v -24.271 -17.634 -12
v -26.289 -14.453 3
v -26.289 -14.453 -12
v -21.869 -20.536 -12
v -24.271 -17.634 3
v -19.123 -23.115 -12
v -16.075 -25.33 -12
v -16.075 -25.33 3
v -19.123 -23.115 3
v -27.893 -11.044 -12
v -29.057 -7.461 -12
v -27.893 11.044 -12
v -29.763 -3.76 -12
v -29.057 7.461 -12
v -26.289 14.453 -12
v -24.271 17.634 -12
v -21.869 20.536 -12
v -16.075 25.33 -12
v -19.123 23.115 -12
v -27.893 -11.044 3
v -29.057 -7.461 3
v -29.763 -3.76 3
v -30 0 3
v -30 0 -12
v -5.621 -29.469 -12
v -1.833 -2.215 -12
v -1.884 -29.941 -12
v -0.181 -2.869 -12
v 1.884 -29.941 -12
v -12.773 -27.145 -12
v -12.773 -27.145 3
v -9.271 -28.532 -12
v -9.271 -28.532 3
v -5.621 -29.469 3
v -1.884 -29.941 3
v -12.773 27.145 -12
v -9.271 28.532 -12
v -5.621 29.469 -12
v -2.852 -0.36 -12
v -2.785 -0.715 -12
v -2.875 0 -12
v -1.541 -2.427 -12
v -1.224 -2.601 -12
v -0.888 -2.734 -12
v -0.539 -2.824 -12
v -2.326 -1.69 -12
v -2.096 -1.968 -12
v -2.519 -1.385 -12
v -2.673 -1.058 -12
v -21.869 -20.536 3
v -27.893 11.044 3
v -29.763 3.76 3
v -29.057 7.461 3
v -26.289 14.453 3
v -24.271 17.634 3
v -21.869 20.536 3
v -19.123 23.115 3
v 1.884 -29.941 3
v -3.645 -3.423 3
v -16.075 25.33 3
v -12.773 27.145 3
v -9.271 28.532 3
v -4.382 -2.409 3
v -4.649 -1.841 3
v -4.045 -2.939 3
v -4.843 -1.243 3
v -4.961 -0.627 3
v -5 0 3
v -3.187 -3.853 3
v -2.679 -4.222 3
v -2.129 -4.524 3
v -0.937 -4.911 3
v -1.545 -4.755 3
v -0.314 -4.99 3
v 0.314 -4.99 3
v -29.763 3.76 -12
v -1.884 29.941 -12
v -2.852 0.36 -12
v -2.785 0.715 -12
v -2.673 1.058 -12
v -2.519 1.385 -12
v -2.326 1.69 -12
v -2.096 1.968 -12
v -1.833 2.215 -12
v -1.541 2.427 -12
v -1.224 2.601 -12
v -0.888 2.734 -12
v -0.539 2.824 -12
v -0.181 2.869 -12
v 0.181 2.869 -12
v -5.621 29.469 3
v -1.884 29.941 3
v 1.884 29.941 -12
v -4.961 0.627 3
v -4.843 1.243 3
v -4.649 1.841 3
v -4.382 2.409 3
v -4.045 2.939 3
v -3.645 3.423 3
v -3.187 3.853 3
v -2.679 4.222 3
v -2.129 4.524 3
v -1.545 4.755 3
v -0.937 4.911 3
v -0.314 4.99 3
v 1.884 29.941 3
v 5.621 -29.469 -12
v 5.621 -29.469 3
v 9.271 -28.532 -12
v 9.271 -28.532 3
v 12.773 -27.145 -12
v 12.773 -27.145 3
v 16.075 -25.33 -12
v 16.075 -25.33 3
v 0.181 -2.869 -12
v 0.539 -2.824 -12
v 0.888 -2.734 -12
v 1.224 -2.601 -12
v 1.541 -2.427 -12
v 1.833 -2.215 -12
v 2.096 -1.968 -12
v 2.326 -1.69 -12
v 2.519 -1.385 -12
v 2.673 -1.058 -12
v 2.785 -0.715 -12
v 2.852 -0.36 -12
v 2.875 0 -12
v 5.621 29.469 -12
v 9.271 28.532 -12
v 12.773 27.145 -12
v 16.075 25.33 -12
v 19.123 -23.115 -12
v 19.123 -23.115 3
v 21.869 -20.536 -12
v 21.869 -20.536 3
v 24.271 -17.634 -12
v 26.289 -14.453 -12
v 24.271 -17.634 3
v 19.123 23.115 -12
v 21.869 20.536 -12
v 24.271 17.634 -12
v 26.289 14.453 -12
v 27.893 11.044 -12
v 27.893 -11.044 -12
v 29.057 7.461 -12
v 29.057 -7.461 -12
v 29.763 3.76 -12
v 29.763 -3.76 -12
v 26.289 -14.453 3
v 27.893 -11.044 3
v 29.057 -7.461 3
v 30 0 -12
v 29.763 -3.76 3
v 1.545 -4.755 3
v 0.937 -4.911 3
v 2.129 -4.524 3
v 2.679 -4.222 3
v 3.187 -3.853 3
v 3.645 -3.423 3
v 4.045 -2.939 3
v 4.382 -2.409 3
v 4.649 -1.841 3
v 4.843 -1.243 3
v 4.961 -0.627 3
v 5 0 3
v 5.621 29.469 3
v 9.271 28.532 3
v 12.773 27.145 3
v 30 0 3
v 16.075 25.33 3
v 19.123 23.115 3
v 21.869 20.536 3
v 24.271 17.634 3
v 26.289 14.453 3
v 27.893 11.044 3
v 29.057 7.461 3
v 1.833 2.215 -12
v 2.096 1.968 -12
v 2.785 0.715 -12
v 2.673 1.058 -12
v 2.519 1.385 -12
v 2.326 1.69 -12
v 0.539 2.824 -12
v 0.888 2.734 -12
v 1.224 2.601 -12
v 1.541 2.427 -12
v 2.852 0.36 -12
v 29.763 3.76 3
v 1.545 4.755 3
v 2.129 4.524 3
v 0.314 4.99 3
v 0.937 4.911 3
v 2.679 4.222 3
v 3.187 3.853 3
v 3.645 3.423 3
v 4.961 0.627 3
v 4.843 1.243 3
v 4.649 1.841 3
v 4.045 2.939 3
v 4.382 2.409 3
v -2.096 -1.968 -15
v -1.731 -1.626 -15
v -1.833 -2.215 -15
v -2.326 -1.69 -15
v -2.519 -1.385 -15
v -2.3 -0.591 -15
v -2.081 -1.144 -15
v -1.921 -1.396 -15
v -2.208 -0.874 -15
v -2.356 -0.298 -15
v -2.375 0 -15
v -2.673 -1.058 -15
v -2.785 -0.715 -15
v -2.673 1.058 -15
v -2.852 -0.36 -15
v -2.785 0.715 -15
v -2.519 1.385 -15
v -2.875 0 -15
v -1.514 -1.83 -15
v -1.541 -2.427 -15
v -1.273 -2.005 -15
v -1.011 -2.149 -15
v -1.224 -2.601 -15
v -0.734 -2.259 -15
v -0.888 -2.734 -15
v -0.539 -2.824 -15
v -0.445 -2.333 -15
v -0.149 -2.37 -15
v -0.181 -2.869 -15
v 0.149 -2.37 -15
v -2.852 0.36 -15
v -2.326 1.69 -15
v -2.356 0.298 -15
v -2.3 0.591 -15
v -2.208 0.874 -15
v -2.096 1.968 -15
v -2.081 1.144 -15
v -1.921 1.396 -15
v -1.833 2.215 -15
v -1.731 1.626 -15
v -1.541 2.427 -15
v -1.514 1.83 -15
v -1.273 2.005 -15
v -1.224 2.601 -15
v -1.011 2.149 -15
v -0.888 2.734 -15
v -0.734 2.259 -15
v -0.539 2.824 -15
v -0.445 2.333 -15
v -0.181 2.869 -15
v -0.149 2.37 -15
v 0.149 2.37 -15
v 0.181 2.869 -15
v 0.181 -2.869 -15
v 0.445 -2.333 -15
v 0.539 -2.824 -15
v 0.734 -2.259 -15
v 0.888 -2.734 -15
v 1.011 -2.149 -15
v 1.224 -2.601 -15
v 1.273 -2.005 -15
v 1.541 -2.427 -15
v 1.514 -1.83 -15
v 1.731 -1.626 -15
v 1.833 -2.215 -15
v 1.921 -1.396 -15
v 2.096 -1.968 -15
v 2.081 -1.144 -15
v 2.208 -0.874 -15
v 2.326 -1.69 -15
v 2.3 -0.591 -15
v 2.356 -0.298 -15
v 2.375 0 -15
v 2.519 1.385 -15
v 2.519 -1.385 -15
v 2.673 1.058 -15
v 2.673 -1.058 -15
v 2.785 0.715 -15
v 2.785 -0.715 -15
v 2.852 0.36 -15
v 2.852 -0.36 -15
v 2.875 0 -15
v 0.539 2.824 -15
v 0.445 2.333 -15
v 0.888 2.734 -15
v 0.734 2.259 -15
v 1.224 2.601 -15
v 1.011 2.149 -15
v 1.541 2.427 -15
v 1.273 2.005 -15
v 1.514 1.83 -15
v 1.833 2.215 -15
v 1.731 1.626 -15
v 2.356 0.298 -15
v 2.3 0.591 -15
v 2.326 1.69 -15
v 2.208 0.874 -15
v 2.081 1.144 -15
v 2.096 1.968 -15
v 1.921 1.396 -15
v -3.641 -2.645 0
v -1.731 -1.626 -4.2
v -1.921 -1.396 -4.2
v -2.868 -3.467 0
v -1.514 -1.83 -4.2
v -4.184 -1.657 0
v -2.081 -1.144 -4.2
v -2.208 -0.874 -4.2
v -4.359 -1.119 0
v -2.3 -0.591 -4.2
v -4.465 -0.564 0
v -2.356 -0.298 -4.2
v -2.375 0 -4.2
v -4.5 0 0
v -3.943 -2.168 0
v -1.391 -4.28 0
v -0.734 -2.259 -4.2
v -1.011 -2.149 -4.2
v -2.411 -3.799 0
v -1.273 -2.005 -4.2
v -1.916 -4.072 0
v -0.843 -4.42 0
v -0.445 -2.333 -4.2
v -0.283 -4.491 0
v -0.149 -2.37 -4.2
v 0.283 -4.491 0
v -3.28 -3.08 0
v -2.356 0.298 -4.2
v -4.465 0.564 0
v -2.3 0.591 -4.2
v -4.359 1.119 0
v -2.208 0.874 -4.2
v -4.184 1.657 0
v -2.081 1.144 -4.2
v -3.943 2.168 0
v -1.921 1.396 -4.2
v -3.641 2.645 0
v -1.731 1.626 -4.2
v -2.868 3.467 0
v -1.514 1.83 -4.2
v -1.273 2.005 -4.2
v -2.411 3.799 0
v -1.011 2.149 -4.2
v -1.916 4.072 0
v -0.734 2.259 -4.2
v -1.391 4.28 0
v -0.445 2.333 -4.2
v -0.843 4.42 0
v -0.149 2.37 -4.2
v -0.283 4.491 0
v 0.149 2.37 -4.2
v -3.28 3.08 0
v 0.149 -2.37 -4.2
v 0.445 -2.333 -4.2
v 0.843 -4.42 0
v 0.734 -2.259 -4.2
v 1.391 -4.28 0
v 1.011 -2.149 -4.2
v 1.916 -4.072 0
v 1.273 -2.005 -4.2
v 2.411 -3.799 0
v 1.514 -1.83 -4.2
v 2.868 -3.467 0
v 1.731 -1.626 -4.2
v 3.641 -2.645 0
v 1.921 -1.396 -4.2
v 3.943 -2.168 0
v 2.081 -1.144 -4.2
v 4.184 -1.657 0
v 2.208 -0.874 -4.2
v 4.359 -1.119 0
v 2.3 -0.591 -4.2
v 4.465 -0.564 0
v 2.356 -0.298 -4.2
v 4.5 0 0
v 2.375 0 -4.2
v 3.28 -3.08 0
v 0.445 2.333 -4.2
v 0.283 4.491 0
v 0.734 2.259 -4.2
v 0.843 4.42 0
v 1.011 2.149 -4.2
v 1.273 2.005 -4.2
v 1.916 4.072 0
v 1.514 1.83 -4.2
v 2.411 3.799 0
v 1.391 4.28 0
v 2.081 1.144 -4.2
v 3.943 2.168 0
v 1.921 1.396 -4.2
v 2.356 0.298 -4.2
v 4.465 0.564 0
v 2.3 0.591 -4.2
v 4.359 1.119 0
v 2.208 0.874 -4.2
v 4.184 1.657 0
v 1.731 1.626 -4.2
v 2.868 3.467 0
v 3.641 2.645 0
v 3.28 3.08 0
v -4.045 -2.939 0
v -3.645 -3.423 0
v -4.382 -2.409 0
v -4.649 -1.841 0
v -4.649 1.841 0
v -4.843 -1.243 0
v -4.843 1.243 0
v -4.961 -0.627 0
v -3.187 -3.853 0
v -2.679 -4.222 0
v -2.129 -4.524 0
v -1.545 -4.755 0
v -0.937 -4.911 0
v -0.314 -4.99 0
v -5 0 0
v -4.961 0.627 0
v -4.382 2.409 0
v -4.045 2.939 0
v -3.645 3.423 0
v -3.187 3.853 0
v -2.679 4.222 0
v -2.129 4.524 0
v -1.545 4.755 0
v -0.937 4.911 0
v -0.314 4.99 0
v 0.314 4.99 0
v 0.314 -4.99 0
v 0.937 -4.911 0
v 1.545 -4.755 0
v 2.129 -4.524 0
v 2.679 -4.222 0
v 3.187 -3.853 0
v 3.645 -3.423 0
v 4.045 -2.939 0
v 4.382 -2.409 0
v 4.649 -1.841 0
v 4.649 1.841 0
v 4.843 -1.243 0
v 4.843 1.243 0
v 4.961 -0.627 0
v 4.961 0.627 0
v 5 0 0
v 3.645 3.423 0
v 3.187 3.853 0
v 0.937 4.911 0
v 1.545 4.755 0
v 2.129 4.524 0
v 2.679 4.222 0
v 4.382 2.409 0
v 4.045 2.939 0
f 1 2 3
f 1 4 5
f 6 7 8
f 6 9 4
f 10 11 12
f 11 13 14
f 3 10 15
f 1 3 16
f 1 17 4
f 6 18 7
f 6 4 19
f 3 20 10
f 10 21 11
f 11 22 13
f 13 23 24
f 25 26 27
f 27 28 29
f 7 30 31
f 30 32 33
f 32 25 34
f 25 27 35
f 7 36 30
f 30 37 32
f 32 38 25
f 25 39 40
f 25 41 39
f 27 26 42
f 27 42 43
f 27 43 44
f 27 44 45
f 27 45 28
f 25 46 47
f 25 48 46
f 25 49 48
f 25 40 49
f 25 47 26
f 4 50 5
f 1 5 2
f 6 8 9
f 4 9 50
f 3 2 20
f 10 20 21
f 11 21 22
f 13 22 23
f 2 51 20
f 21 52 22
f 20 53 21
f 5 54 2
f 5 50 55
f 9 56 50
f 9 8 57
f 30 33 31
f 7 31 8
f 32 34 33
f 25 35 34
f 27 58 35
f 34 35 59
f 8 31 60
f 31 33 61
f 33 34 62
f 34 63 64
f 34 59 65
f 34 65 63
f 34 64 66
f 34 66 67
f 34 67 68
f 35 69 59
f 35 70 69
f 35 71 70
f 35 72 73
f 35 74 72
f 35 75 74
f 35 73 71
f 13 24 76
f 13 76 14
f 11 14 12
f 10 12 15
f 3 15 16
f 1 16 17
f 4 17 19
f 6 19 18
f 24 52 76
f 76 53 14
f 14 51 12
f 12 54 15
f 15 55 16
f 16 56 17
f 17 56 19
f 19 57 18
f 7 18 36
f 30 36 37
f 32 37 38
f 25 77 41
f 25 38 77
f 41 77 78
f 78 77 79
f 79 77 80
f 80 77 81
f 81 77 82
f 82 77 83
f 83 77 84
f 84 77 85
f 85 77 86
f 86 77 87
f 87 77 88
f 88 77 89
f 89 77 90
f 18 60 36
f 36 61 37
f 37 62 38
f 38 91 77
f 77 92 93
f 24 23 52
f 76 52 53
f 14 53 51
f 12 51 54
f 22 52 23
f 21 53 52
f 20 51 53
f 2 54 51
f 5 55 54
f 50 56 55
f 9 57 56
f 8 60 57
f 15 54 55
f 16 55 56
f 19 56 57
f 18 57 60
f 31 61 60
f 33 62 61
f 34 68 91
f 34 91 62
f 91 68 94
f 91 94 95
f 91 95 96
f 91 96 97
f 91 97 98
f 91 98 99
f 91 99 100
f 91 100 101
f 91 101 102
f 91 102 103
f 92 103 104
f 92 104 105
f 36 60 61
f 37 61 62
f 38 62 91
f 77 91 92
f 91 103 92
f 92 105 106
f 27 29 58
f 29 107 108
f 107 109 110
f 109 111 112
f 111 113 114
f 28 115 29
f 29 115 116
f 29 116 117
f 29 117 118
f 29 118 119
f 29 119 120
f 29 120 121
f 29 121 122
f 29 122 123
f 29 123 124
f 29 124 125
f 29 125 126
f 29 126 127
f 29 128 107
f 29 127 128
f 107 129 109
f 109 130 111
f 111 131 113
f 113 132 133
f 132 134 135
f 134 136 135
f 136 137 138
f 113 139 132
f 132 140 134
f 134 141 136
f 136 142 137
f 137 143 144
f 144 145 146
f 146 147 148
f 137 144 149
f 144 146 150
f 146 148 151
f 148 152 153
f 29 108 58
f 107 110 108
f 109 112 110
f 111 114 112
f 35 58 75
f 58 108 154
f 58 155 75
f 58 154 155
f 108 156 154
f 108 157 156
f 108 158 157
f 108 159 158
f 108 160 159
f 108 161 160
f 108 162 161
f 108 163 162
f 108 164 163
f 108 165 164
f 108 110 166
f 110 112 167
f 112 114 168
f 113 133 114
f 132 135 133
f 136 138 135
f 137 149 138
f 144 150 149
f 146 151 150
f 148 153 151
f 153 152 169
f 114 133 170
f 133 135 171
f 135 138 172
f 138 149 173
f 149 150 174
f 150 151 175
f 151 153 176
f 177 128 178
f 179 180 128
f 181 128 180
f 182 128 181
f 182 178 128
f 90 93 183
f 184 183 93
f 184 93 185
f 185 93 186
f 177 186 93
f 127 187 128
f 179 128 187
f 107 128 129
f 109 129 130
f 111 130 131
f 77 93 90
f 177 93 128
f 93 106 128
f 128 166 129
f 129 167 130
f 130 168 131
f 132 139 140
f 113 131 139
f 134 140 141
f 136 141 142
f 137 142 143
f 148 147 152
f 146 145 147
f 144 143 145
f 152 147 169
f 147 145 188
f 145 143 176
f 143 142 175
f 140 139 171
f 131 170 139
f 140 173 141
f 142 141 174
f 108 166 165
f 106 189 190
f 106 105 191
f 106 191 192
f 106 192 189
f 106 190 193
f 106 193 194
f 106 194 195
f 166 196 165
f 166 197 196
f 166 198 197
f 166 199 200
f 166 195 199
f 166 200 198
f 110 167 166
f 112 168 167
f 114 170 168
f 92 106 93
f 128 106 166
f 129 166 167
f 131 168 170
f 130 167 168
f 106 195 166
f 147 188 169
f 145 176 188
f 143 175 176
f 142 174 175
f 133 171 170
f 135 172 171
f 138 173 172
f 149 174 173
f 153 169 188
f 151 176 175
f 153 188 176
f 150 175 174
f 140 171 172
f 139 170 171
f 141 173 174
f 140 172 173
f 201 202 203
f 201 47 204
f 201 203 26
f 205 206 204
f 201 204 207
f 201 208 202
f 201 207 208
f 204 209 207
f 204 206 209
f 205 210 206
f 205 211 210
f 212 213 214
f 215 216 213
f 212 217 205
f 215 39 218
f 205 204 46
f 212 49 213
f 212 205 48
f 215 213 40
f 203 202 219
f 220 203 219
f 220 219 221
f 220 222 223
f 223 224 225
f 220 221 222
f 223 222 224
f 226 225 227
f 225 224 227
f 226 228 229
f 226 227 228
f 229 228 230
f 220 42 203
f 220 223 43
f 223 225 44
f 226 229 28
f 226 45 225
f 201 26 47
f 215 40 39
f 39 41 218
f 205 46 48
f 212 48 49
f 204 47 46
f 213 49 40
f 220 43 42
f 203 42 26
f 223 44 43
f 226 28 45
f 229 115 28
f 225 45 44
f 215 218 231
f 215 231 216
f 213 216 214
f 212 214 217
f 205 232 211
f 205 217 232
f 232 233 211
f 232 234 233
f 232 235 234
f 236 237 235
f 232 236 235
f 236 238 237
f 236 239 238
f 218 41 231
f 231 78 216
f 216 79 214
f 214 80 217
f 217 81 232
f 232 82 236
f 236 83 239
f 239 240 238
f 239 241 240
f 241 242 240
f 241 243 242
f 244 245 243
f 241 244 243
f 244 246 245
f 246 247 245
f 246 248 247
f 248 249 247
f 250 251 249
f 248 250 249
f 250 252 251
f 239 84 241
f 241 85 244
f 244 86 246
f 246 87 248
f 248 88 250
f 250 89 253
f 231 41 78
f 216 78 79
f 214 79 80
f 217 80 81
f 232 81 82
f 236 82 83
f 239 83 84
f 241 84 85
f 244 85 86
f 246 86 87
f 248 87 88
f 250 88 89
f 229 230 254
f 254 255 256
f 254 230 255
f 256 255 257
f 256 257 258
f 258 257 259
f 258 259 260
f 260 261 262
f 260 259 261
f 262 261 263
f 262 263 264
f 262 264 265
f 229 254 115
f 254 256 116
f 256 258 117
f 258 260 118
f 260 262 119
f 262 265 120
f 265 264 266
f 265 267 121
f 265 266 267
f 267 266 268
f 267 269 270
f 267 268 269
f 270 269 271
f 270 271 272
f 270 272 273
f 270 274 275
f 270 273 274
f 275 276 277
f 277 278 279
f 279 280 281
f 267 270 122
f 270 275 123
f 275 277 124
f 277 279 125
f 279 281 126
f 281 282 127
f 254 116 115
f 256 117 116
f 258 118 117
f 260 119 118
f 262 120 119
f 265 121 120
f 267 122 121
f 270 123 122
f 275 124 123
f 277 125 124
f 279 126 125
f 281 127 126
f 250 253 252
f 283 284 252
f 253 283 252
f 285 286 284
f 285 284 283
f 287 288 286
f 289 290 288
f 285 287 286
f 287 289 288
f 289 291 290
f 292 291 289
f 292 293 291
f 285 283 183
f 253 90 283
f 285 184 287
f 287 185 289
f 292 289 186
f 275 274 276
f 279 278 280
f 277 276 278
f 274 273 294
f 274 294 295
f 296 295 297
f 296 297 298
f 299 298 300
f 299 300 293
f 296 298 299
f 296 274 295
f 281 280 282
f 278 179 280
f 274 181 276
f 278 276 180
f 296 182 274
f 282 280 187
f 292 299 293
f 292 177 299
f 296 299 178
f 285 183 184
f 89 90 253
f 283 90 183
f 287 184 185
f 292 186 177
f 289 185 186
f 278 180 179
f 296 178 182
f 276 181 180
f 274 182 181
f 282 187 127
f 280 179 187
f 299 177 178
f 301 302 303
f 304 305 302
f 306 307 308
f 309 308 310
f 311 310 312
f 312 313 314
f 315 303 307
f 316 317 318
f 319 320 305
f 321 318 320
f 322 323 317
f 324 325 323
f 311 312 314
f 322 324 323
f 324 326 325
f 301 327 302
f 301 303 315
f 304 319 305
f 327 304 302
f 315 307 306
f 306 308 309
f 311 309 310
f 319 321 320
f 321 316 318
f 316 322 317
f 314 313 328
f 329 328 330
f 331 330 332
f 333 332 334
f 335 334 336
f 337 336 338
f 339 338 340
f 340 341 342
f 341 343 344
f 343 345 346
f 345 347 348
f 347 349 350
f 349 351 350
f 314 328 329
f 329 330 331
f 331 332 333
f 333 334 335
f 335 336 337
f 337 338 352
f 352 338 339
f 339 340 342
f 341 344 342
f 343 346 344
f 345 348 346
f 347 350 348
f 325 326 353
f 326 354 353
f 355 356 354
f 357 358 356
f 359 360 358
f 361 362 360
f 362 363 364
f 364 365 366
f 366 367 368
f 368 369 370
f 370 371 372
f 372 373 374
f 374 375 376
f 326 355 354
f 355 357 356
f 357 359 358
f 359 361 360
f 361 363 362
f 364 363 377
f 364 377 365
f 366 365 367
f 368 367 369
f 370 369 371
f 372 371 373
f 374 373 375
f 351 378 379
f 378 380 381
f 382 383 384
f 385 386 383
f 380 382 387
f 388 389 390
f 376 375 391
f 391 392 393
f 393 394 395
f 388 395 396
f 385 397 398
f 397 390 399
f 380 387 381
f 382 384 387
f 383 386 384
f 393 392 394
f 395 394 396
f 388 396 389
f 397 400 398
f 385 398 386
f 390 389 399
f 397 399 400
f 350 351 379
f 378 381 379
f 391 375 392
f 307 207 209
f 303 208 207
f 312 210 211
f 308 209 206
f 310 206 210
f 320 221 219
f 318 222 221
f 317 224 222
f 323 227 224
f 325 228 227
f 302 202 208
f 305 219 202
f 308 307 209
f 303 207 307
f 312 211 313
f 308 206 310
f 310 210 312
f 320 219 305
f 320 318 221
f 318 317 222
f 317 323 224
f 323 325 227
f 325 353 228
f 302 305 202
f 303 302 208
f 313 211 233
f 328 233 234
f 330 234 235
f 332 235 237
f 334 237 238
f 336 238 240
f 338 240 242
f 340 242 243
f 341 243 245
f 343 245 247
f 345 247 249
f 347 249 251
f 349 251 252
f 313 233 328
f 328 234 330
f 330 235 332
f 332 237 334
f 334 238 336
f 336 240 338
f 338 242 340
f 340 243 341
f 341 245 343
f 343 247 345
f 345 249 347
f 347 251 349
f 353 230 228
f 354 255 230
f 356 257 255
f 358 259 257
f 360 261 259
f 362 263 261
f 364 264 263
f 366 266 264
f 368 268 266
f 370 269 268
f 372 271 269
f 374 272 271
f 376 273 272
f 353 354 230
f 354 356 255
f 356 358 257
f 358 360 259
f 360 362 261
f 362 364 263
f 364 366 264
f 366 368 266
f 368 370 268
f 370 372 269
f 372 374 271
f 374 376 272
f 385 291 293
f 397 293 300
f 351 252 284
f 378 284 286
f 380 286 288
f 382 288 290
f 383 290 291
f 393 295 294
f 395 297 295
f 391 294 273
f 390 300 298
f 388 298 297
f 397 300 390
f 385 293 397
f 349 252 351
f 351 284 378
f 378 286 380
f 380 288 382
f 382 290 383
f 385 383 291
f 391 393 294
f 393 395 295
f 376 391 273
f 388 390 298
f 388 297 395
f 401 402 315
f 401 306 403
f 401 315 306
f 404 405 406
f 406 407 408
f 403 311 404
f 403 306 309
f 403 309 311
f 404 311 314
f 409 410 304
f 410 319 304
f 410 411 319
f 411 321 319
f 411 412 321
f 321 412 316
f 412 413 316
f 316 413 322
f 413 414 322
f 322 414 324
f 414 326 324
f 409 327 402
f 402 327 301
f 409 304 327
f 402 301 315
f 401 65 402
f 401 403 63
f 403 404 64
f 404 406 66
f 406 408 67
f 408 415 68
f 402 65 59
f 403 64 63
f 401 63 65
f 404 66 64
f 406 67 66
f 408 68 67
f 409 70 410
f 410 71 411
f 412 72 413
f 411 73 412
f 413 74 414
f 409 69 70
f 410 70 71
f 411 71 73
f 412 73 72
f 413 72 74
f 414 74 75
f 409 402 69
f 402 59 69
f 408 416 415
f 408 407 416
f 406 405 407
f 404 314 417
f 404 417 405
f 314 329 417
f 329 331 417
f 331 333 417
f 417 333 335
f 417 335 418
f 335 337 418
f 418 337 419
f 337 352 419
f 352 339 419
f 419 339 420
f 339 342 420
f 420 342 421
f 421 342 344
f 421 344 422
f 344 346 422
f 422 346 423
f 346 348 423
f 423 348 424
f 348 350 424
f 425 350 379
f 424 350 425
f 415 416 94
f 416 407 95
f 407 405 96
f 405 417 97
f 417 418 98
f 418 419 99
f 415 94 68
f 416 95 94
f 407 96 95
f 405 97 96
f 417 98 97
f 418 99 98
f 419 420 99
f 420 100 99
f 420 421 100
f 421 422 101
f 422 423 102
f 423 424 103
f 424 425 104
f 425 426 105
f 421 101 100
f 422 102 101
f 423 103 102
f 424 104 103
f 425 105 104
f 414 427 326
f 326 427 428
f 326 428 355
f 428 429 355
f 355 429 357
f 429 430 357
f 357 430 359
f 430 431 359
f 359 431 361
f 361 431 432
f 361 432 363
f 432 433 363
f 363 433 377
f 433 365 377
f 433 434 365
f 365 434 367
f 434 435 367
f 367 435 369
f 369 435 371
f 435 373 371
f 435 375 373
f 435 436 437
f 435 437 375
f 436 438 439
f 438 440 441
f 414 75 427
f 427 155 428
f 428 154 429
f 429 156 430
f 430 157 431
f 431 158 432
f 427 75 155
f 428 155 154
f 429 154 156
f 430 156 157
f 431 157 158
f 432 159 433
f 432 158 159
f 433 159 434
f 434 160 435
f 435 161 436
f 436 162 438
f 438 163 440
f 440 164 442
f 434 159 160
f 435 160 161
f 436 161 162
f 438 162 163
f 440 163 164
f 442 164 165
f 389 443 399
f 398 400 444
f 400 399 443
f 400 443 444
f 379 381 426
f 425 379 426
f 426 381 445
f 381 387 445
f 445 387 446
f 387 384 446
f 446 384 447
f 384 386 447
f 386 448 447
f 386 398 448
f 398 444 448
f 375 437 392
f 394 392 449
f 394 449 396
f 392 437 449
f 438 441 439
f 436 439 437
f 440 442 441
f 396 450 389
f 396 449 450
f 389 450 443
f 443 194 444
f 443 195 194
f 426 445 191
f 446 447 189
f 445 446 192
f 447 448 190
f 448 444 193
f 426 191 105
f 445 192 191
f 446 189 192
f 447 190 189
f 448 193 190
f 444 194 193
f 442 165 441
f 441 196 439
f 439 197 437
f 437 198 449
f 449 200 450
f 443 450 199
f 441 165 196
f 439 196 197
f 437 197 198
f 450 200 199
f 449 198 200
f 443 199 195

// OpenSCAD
$fn = 50;


difference() {
	union() {
		translate(v = [0, 0, -12.0000000000]) {
			cylinder(h = 15, r = 30.0000000000);
		}
		#translate(v = [0, 0, -15.0000000000]) {
			cylinder(h = 15, r = 2.8750000000);
		}
	}
	union() {
		translate(v = [0, 0, 0]) {
			rotate(a = [0, 0, 0]) {
				difference() {
					union() {
						translate(v = [0, 0, -15.0000000000]) {
							cylinder(h = 15, r = 2.2500000000);
						}
						translate(v = [0, 0, -4.2000000000]) {
							cylinder(h = 4.2000000000, r1 = 2.3750000000, r2 = 4.5000000000);
						}
						translate(v = [0, 0, -15.0000000000]) {
							cylinder(h = 15, r = 2.3750000000);
						}
						translate(v = [0, 0, -15.0000000000]) {
							cylinder(h = 15, r = 2.2500000000);
						}
					}
					union();
				}
			}
		}
		#cylinder(h = 3, r = 5.0000000000);
	}
}
